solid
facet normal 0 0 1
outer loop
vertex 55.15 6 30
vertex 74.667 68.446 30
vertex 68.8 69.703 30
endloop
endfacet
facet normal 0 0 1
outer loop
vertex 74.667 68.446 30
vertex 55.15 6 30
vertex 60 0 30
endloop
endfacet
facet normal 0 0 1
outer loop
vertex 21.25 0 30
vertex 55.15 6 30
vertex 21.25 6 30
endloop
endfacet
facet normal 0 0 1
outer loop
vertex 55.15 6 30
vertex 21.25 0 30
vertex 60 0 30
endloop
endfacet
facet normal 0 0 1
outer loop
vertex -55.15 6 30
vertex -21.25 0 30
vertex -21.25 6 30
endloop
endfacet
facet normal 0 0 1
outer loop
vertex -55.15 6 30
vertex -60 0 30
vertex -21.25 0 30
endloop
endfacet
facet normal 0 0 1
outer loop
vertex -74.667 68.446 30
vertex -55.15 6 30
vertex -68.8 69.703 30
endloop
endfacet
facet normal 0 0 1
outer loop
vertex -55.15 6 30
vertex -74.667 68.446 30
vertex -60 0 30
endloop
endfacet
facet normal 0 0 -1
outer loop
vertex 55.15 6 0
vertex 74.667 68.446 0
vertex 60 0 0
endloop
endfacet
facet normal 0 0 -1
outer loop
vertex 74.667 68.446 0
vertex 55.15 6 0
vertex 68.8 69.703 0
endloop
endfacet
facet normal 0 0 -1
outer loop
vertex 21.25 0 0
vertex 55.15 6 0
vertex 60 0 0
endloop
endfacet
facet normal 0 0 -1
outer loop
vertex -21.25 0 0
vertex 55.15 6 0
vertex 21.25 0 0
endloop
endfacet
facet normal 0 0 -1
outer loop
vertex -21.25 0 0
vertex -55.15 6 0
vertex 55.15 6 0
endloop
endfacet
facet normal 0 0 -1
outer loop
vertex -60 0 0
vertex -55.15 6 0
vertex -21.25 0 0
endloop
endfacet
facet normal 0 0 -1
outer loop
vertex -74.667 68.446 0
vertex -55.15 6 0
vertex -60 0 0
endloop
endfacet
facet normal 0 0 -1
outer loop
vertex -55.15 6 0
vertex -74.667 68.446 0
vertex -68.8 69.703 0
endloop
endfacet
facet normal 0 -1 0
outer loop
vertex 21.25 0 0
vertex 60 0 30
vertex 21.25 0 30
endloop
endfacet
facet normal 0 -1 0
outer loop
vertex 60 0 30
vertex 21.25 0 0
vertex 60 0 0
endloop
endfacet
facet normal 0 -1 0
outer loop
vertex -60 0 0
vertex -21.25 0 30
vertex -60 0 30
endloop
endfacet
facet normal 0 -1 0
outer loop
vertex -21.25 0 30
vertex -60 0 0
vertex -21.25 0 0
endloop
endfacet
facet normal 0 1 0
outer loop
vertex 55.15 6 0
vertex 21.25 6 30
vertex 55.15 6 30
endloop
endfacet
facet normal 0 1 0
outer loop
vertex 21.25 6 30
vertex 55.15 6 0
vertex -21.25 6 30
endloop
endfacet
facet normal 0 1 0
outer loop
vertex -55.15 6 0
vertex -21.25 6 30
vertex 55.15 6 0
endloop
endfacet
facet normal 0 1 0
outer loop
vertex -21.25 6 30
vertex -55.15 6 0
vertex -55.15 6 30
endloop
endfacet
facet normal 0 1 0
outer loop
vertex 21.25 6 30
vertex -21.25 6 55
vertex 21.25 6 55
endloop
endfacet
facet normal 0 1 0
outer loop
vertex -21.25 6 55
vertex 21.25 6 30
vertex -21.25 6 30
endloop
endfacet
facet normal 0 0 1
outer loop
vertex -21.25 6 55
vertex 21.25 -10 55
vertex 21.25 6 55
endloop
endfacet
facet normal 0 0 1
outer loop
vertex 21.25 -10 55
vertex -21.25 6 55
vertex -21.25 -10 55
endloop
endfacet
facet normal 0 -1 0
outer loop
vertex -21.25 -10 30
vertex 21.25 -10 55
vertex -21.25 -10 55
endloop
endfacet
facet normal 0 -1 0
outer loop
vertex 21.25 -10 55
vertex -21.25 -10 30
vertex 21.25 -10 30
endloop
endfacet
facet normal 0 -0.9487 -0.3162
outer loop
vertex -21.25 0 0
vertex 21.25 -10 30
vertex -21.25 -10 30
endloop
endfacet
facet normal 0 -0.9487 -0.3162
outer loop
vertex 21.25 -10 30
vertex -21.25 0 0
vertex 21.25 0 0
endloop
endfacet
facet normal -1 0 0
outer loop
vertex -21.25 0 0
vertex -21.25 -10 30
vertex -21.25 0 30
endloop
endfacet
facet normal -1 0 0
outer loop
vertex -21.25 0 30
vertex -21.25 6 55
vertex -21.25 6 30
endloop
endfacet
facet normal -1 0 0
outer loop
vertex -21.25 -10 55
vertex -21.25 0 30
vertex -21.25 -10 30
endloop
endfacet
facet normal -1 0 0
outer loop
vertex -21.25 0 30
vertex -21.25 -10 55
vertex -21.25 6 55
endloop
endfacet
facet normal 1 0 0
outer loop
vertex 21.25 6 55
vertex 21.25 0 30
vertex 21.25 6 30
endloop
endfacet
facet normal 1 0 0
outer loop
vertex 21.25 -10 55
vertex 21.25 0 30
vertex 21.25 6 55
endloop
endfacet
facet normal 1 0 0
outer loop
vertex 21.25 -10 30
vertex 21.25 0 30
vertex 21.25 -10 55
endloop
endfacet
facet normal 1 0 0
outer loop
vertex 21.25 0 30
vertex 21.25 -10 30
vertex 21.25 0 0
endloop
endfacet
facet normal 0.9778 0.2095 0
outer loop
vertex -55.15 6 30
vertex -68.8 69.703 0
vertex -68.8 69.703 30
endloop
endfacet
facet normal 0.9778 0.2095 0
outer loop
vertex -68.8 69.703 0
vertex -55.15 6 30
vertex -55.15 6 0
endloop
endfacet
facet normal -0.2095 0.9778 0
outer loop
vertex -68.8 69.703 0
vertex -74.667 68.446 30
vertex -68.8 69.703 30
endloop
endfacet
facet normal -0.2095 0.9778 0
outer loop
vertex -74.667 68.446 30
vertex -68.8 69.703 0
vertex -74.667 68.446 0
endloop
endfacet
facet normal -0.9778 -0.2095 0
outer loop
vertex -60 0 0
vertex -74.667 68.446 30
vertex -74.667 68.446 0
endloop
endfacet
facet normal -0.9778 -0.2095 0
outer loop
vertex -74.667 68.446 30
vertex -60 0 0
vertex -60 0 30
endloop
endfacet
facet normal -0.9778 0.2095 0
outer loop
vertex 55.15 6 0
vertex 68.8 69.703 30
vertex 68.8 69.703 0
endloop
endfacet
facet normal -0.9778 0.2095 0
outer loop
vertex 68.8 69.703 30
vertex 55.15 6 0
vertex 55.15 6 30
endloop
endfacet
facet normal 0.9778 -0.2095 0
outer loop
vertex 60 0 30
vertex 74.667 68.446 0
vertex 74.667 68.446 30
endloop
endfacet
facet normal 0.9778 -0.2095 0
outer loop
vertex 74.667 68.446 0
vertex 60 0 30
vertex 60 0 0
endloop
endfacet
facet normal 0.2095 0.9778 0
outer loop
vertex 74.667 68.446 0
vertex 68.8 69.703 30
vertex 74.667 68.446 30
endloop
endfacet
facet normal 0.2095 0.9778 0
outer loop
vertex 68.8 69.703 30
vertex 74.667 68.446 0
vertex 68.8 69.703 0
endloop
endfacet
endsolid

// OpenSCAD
// corpo
translate([-60,0,0])
cube([120, 6, 30]);

// encaixe
translate([-42.5/2,0,0]) {
    hull()
    {
    cube([42.5, 6, 55]);

    color("yellow")
    translate([0,-10,30])
    cube([42.5, 10, 25]);
    }
}

// ponta esquerda
translate([-60,0,0])
pontas();

// ponta direita
translate([60,0,0])
mirror([180,0,0])
pontas();

module pontas(inverter) {
angulo = 12.0948; // 12.0948; 77.90
    color("red")
    rotate([0,0,angulo])
    cube([6, 70, 30]);
}
